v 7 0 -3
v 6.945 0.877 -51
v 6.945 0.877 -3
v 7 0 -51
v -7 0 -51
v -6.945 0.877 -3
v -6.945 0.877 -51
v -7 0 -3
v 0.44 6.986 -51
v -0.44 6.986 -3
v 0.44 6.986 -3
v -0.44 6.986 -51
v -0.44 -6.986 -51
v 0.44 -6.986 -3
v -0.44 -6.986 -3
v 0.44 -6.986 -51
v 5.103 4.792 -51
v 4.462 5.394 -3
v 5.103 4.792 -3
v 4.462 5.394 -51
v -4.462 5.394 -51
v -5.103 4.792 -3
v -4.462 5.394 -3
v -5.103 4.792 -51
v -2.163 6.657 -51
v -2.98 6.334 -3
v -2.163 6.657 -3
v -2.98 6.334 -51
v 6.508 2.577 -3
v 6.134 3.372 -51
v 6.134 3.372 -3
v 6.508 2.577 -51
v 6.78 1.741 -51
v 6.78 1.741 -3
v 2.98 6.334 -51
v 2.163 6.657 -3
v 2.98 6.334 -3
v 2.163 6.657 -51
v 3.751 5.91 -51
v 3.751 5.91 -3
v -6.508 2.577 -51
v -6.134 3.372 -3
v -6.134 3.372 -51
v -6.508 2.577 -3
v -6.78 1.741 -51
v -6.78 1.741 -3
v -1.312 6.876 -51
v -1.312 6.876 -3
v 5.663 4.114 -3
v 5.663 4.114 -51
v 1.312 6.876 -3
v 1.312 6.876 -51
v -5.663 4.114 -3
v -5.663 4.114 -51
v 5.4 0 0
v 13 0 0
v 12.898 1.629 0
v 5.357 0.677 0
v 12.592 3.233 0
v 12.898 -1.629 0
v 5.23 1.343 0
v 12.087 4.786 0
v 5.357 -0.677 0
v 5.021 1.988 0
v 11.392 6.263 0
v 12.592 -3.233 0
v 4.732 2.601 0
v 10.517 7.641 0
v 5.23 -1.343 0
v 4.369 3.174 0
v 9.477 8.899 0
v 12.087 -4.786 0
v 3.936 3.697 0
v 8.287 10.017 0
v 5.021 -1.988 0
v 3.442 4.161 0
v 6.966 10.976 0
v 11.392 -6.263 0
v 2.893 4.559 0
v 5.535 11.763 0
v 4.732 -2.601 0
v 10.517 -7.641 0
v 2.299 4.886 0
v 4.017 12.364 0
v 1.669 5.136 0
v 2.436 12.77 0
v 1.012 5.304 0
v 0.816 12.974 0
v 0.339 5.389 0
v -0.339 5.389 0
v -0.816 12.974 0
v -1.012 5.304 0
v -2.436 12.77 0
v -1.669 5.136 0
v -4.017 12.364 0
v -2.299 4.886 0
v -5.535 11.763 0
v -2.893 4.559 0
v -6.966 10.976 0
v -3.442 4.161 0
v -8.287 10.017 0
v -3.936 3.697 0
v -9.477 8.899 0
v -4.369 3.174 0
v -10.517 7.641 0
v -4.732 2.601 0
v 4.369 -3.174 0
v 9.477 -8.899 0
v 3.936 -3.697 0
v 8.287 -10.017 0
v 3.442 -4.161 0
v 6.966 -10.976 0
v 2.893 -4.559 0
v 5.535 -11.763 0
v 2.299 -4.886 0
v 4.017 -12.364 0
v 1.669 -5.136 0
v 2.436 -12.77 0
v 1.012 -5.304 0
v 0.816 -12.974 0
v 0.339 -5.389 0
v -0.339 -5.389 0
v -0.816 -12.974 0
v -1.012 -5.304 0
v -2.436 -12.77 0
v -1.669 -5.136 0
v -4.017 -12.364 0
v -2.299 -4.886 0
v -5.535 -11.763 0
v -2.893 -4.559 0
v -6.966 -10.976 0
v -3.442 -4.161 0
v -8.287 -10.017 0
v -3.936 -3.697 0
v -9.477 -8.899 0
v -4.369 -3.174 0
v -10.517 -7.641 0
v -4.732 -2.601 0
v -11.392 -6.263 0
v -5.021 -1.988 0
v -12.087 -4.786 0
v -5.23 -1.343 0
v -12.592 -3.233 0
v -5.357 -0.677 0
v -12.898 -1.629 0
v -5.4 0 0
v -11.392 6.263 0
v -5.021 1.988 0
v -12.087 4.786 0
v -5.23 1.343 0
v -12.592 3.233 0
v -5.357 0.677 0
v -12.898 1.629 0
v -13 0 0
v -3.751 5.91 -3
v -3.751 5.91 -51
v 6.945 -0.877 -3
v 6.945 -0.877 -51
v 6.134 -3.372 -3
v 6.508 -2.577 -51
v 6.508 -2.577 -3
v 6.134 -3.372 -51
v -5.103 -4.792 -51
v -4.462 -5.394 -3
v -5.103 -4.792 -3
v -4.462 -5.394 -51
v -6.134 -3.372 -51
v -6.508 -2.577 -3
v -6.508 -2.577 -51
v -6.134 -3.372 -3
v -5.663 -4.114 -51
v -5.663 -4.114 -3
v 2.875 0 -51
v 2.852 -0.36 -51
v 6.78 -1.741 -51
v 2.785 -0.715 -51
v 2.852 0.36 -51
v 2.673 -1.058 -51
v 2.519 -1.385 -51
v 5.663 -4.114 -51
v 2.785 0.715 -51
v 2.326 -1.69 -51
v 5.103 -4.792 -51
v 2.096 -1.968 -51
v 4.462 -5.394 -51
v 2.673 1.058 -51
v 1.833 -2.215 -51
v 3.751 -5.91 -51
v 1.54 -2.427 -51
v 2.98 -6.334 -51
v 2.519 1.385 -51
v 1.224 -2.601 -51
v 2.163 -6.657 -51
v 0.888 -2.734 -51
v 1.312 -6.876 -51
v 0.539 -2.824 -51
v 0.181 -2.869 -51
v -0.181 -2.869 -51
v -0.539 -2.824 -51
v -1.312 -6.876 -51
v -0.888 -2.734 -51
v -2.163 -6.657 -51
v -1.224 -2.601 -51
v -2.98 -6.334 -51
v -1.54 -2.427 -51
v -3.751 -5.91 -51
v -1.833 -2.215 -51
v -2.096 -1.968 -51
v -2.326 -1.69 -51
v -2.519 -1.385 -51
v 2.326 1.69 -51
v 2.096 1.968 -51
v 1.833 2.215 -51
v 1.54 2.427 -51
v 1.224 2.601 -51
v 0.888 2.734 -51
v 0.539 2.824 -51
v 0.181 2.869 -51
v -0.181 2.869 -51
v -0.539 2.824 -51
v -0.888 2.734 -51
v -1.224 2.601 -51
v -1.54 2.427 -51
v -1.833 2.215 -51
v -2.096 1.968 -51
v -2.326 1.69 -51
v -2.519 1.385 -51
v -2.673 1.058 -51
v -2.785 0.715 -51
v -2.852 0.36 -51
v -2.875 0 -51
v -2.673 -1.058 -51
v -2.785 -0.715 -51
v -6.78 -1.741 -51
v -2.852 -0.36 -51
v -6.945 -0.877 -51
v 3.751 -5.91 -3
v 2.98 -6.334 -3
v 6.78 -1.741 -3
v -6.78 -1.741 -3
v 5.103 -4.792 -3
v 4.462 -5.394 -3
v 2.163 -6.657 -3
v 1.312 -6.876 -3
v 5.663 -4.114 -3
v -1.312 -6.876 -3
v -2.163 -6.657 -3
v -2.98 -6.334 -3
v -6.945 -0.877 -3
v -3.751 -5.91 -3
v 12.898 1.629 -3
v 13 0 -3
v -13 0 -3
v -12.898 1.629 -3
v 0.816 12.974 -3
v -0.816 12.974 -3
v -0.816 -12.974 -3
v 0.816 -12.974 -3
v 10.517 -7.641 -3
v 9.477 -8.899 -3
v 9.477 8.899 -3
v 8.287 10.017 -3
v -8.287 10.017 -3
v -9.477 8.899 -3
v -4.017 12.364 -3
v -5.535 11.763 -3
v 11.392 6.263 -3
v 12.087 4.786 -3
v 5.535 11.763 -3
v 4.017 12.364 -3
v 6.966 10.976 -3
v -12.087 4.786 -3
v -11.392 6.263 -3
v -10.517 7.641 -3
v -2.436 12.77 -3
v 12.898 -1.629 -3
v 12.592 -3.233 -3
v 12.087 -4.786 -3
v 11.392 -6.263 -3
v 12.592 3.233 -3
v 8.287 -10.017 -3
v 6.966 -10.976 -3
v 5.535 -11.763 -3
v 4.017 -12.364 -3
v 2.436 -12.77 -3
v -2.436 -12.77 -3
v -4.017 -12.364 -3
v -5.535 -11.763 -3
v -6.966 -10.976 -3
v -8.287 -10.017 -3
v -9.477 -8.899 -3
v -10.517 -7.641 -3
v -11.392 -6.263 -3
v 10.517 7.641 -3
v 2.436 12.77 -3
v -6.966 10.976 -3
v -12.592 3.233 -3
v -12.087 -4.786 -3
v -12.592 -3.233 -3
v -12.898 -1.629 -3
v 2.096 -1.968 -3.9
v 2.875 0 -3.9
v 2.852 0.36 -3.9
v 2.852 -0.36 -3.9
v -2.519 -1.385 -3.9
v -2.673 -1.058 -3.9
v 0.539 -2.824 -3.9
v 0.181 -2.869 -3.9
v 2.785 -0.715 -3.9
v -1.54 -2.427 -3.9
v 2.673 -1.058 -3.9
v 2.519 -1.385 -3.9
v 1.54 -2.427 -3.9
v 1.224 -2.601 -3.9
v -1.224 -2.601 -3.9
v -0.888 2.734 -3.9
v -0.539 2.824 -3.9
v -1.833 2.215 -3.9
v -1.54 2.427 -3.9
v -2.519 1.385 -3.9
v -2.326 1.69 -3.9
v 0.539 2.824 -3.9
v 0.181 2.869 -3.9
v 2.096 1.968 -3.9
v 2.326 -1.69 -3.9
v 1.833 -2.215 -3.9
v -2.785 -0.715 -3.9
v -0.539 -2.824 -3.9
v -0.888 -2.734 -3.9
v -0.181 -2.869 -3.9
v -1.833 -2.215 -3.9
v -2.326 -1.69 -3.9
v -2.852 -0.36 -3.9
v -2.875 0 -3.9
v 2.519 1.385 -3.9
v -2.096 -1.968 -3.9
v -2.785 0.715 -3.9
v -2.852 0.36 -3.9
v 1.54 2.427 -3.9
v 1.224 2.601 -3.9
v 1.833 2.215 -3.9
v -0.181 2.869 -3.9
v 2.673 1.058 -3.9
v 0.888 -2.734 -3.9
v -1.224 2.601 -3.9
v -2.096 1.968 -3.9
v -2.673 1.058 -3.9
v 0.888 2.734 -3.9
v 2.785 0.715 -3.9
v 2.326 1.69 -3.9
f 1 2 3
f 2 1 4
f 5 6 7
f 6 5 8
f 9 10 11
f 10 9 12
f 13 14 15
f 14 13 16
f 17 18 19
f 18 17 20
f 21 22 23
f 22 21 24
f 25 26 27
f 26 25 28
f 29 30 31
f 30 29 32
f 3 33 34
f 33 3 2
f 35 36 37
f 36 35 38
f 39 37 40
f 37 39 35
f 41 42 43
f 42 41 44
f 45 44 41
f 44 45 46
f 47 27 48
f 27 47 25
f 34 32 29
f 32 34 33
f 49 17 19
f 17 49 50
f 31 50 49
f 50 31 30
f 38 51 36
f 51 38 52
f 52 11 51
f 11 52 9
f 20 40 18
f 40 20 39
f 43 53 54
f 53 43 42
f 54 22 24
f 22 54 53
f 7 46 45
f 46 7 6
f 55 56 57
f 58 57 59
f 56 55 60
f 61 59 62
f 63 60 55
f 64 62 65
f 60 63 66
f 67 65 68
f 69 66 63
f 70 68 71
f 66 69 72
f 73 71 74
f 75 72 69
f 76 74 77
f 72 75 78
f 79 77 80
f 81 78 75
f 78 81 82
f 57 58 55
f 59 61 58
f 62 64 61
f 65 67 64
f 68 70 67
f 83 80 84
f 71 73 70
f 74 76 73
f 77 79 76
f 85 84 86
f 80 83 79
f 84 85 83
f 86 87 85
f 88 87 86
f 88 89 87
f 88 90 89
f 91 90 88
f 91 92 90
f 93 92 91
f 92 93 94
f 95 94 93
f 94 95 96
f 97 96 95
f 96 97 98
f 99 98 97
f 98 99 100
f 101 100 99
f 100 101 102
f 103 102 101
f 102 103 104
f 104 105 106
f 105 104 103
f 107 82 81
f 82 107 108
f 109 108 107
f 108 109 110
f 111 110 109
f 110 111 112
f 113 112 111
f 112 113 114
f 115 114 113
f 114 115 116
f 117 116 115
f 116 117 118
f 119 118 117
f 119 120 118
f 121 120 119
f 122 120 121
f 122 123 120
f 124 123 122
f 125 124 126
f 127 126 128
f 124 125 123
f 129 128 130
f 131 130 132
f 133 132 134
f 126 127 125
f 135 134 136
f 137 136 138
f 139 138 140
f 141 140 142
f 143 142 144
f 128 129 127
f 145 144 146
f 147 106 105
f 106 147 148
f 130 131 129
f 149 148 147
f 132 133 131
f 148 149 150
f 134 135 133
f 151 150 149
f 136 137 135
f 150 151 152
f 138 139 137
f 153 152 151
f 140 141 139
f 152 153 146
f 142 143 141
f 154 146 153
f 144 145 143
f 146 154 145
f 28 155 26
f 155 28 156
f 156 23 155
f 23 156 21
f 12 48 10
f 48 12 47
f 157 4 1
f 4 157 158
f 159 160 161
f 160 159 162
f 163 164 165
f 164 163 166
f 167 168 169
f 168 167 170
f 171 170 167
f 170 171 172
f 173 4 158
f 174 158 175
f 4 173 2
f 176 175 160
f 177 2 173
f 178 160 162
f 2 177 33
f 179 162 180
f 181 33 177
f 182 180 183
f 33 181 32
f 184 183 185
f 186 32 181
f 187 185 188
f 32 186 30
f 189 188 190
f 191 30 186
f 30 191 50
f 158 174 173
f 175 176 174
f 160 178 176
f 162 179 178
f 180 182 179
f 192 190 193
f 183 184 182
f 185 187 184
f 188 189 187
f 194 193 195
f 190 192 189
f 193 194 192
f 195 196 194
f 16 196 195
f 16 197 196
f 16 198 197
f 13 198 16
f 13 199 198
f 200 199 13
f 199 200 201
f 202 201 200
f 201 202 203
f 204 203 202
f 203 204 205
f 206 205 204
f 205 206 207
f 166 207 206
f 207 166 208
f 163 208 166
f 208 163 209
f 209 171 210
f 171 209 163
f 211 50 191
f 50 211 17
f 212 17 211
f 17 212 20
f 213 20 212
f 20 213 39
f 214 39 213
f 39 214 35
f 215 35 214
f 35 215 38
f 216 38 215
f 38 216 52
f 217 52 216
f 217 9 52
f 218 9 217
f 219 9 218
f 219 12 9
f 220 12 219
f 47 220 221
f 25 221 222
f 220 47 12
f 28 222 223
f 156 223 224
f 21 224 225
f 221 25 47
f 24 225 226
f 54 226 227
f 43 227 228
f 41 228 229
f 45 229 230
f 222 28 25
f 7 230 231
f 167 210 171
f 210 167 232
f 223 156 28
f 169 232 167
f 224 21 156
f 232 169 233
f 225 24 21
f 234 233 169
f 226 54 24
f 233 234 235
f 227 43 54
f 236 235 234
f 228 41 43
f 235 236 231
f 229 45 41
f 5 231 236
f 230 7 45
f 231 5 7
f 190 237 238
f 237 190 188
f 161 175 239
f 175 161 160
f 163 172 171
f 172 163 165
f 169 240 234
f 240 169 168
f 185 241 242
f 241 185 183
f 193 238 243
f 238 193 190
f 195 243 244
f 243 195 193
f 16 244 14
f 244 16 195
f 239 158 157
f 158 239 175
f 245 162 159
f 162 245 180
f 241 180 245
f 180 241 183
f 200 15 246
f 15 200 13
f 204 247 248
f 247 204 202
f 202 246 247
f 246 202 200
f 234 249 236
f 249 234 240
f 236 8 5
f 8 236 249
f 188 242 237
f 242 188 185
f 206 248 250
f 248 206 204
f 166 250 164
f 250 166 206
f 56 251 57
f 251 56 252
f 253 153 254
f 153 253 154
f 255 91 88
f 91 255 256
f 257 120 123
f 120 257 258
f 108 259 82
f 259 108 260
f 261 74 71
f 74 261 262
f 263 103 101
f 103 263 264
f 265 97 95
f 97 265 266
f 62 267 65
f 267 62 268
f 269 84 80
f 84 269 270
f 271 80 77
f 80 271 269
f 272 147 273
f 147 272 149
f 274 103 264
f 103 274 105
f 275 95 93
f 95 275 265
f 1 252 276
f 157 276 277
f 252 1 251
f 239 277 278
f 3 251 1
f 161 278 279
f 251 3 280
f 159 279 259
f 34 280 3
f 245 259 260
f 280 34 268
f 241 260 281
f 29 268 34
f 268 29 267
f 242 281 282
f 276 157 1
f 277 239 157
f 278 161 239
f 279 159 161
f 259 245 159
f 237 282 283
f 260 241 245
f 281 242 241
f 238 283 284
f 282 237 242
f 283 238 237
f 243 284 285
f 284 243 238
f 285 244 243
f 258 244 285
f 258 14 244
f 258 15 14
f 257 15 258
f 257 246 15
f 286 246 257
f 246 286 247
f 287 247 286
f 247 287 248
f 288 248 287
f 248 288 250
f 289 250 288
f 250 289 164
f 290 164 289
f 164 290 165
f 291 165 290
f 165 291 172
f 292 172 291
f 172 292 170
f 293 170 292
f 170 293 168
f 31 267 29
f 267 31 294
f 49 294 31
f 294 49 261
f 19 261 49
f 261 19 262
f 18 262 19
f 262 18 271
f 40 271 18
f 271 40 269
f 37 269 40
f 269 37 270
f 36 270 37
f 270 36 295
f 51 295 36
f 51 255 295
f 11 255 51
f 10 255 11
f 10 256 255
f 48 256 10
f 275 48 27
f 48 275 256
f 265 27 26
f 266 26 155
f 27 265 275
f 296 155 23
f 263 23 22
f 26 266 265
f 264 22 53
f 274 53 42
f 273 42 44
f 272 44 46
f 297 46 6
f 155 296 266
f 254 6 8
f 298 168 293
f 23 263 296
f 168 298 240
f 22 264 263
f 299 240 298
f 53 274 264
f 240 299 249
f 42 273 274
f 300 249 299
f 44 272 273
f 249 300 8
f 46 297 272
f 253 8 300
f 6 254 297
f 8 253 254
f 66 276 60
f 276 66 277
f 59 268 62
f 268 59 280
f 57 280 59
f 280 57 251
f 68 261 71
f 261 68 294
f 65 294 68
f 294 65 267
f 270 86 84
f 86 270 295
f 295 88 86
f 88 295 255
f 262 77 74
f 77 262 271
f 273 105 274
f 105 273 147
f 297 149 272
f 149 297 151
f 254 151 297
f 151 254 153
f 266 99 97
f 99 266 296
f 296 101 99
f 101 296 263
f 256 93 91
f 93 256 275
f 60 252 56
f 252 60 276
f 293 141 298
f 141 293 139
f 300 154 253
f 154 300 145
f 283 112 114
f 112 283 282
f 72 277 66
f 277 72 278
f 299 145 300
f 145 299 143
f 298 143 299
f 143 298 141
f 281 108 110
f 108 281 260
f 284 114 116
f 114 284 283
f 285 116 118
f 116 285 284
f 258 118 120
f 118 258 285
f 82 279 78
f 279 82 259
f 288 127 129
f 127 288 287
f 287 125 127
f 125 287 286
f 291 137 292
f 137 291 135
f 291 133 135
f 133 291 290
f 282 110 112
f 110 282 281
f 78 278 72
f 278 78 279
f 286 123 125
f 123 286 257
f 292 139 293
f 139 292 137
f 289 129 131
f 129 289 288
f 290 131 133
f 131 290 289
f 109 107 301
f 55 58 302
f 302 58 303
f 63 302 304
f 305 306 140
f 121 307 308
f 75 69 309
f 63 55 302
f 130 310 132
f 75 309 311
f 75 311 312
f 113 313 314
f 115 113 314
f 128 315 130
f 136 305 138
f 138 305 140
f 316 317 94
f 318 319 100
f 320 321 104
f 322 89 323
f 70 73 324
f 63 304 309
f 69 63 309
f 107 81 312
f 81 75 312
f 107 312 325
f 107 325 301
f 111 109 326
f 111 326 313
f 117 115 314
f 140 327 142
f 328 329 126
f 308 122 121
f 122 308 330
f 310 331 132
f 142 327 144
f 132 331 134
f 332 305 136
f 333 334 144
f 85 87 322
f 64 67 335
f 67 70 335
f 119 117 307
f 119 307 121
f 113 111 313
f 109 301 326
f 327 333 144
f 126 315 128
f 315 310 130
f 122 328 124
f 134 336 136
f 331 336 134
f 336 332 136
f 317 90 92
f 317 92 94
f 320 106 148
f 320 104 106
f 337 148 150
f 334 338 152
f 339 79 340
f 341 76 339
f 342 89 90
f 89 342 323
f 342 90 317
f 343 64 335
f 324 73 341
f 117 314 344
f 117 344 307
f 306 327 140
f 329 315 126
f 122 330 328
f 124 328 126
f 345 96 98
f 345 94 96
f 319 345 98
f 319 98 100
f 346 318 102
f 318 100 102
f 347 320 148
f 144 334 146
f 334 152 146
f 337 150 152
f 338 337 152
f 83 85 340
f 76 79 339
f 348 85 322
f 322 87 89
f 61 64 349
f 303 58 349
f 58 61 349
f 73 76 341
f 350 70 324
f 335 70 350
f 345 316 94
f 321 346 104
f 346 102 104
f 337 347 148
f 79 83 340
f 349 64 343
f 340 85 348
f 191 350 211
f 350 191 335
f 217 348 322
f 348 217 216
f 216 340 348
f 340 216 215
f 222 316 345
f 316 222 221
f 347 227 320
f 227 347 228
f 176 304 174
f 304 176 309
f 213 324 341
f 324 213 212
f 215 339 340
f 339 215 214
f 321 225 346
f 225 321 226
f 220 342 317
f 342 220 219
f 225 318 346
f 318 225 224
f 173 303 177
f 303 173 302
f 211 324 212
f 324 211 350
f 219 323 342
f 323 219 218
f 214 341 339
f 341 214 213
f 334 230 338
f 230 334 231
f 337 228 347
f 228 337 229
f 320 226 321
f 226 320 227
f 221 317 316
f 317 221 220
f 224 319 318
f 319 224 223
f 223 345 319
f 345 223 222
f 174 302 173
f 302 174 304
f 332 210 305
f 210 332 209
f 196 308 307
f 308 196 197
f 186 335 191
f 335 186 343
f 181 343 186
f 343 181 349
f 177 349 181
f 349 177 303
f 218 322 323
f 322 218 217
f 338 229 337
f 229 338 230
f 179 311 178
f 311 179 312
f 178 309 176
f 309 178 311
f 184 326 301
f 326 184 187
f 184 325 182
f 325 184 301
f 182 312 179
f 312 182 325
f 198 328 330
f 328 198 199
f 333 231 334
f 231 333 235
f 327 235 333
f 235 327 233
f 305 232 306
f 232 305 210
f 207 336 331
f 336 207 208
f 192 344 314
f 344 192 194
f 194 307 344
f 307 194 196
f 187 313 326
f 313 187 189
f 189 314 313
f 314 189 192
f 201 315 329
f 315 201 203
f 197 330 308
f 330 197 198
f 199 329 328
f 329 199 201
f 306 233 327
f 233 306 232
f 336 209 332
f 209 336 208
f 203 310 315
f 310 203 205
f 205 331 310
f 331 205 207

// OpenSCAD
$fn = 50;


difference() {
	union() {
		translate(v = [0, 0, -51.0000000000]) {
			cylinder(h = 51, r = 7.0000000000);
		}
		translate(v = [0, 0, -3.0000000000]) {
			cylinder(h = 3, r = 13.0000000000);
		}
	}
	union() {
		translate(v = [0, 0, 0]) {
			rotate(a = [0, 0, 0]) {
				difference() {
					union() {
						#translate(v = [0, 0, -51.0000000000]) {
							cylinder(h = 51, r = 2.6000000000);
						}
						#translate(v = [0, 0, -3.9000000000]) {
							cylinder(h = 3.9000000000, r1 = 2.8750000000, r2 = 5.4000000000);
						}
						#translate(v = [0, 0, -51.0000000000]) {
							cylinder(h = 51, r = 2.8750000000);
						}
						#translate(v = [0, 0, -51.0000000000]) {
							cylinder(h = 51, r = 2.6000000000);
						}
					}
					union();
				}
			}
		}
	}
}
